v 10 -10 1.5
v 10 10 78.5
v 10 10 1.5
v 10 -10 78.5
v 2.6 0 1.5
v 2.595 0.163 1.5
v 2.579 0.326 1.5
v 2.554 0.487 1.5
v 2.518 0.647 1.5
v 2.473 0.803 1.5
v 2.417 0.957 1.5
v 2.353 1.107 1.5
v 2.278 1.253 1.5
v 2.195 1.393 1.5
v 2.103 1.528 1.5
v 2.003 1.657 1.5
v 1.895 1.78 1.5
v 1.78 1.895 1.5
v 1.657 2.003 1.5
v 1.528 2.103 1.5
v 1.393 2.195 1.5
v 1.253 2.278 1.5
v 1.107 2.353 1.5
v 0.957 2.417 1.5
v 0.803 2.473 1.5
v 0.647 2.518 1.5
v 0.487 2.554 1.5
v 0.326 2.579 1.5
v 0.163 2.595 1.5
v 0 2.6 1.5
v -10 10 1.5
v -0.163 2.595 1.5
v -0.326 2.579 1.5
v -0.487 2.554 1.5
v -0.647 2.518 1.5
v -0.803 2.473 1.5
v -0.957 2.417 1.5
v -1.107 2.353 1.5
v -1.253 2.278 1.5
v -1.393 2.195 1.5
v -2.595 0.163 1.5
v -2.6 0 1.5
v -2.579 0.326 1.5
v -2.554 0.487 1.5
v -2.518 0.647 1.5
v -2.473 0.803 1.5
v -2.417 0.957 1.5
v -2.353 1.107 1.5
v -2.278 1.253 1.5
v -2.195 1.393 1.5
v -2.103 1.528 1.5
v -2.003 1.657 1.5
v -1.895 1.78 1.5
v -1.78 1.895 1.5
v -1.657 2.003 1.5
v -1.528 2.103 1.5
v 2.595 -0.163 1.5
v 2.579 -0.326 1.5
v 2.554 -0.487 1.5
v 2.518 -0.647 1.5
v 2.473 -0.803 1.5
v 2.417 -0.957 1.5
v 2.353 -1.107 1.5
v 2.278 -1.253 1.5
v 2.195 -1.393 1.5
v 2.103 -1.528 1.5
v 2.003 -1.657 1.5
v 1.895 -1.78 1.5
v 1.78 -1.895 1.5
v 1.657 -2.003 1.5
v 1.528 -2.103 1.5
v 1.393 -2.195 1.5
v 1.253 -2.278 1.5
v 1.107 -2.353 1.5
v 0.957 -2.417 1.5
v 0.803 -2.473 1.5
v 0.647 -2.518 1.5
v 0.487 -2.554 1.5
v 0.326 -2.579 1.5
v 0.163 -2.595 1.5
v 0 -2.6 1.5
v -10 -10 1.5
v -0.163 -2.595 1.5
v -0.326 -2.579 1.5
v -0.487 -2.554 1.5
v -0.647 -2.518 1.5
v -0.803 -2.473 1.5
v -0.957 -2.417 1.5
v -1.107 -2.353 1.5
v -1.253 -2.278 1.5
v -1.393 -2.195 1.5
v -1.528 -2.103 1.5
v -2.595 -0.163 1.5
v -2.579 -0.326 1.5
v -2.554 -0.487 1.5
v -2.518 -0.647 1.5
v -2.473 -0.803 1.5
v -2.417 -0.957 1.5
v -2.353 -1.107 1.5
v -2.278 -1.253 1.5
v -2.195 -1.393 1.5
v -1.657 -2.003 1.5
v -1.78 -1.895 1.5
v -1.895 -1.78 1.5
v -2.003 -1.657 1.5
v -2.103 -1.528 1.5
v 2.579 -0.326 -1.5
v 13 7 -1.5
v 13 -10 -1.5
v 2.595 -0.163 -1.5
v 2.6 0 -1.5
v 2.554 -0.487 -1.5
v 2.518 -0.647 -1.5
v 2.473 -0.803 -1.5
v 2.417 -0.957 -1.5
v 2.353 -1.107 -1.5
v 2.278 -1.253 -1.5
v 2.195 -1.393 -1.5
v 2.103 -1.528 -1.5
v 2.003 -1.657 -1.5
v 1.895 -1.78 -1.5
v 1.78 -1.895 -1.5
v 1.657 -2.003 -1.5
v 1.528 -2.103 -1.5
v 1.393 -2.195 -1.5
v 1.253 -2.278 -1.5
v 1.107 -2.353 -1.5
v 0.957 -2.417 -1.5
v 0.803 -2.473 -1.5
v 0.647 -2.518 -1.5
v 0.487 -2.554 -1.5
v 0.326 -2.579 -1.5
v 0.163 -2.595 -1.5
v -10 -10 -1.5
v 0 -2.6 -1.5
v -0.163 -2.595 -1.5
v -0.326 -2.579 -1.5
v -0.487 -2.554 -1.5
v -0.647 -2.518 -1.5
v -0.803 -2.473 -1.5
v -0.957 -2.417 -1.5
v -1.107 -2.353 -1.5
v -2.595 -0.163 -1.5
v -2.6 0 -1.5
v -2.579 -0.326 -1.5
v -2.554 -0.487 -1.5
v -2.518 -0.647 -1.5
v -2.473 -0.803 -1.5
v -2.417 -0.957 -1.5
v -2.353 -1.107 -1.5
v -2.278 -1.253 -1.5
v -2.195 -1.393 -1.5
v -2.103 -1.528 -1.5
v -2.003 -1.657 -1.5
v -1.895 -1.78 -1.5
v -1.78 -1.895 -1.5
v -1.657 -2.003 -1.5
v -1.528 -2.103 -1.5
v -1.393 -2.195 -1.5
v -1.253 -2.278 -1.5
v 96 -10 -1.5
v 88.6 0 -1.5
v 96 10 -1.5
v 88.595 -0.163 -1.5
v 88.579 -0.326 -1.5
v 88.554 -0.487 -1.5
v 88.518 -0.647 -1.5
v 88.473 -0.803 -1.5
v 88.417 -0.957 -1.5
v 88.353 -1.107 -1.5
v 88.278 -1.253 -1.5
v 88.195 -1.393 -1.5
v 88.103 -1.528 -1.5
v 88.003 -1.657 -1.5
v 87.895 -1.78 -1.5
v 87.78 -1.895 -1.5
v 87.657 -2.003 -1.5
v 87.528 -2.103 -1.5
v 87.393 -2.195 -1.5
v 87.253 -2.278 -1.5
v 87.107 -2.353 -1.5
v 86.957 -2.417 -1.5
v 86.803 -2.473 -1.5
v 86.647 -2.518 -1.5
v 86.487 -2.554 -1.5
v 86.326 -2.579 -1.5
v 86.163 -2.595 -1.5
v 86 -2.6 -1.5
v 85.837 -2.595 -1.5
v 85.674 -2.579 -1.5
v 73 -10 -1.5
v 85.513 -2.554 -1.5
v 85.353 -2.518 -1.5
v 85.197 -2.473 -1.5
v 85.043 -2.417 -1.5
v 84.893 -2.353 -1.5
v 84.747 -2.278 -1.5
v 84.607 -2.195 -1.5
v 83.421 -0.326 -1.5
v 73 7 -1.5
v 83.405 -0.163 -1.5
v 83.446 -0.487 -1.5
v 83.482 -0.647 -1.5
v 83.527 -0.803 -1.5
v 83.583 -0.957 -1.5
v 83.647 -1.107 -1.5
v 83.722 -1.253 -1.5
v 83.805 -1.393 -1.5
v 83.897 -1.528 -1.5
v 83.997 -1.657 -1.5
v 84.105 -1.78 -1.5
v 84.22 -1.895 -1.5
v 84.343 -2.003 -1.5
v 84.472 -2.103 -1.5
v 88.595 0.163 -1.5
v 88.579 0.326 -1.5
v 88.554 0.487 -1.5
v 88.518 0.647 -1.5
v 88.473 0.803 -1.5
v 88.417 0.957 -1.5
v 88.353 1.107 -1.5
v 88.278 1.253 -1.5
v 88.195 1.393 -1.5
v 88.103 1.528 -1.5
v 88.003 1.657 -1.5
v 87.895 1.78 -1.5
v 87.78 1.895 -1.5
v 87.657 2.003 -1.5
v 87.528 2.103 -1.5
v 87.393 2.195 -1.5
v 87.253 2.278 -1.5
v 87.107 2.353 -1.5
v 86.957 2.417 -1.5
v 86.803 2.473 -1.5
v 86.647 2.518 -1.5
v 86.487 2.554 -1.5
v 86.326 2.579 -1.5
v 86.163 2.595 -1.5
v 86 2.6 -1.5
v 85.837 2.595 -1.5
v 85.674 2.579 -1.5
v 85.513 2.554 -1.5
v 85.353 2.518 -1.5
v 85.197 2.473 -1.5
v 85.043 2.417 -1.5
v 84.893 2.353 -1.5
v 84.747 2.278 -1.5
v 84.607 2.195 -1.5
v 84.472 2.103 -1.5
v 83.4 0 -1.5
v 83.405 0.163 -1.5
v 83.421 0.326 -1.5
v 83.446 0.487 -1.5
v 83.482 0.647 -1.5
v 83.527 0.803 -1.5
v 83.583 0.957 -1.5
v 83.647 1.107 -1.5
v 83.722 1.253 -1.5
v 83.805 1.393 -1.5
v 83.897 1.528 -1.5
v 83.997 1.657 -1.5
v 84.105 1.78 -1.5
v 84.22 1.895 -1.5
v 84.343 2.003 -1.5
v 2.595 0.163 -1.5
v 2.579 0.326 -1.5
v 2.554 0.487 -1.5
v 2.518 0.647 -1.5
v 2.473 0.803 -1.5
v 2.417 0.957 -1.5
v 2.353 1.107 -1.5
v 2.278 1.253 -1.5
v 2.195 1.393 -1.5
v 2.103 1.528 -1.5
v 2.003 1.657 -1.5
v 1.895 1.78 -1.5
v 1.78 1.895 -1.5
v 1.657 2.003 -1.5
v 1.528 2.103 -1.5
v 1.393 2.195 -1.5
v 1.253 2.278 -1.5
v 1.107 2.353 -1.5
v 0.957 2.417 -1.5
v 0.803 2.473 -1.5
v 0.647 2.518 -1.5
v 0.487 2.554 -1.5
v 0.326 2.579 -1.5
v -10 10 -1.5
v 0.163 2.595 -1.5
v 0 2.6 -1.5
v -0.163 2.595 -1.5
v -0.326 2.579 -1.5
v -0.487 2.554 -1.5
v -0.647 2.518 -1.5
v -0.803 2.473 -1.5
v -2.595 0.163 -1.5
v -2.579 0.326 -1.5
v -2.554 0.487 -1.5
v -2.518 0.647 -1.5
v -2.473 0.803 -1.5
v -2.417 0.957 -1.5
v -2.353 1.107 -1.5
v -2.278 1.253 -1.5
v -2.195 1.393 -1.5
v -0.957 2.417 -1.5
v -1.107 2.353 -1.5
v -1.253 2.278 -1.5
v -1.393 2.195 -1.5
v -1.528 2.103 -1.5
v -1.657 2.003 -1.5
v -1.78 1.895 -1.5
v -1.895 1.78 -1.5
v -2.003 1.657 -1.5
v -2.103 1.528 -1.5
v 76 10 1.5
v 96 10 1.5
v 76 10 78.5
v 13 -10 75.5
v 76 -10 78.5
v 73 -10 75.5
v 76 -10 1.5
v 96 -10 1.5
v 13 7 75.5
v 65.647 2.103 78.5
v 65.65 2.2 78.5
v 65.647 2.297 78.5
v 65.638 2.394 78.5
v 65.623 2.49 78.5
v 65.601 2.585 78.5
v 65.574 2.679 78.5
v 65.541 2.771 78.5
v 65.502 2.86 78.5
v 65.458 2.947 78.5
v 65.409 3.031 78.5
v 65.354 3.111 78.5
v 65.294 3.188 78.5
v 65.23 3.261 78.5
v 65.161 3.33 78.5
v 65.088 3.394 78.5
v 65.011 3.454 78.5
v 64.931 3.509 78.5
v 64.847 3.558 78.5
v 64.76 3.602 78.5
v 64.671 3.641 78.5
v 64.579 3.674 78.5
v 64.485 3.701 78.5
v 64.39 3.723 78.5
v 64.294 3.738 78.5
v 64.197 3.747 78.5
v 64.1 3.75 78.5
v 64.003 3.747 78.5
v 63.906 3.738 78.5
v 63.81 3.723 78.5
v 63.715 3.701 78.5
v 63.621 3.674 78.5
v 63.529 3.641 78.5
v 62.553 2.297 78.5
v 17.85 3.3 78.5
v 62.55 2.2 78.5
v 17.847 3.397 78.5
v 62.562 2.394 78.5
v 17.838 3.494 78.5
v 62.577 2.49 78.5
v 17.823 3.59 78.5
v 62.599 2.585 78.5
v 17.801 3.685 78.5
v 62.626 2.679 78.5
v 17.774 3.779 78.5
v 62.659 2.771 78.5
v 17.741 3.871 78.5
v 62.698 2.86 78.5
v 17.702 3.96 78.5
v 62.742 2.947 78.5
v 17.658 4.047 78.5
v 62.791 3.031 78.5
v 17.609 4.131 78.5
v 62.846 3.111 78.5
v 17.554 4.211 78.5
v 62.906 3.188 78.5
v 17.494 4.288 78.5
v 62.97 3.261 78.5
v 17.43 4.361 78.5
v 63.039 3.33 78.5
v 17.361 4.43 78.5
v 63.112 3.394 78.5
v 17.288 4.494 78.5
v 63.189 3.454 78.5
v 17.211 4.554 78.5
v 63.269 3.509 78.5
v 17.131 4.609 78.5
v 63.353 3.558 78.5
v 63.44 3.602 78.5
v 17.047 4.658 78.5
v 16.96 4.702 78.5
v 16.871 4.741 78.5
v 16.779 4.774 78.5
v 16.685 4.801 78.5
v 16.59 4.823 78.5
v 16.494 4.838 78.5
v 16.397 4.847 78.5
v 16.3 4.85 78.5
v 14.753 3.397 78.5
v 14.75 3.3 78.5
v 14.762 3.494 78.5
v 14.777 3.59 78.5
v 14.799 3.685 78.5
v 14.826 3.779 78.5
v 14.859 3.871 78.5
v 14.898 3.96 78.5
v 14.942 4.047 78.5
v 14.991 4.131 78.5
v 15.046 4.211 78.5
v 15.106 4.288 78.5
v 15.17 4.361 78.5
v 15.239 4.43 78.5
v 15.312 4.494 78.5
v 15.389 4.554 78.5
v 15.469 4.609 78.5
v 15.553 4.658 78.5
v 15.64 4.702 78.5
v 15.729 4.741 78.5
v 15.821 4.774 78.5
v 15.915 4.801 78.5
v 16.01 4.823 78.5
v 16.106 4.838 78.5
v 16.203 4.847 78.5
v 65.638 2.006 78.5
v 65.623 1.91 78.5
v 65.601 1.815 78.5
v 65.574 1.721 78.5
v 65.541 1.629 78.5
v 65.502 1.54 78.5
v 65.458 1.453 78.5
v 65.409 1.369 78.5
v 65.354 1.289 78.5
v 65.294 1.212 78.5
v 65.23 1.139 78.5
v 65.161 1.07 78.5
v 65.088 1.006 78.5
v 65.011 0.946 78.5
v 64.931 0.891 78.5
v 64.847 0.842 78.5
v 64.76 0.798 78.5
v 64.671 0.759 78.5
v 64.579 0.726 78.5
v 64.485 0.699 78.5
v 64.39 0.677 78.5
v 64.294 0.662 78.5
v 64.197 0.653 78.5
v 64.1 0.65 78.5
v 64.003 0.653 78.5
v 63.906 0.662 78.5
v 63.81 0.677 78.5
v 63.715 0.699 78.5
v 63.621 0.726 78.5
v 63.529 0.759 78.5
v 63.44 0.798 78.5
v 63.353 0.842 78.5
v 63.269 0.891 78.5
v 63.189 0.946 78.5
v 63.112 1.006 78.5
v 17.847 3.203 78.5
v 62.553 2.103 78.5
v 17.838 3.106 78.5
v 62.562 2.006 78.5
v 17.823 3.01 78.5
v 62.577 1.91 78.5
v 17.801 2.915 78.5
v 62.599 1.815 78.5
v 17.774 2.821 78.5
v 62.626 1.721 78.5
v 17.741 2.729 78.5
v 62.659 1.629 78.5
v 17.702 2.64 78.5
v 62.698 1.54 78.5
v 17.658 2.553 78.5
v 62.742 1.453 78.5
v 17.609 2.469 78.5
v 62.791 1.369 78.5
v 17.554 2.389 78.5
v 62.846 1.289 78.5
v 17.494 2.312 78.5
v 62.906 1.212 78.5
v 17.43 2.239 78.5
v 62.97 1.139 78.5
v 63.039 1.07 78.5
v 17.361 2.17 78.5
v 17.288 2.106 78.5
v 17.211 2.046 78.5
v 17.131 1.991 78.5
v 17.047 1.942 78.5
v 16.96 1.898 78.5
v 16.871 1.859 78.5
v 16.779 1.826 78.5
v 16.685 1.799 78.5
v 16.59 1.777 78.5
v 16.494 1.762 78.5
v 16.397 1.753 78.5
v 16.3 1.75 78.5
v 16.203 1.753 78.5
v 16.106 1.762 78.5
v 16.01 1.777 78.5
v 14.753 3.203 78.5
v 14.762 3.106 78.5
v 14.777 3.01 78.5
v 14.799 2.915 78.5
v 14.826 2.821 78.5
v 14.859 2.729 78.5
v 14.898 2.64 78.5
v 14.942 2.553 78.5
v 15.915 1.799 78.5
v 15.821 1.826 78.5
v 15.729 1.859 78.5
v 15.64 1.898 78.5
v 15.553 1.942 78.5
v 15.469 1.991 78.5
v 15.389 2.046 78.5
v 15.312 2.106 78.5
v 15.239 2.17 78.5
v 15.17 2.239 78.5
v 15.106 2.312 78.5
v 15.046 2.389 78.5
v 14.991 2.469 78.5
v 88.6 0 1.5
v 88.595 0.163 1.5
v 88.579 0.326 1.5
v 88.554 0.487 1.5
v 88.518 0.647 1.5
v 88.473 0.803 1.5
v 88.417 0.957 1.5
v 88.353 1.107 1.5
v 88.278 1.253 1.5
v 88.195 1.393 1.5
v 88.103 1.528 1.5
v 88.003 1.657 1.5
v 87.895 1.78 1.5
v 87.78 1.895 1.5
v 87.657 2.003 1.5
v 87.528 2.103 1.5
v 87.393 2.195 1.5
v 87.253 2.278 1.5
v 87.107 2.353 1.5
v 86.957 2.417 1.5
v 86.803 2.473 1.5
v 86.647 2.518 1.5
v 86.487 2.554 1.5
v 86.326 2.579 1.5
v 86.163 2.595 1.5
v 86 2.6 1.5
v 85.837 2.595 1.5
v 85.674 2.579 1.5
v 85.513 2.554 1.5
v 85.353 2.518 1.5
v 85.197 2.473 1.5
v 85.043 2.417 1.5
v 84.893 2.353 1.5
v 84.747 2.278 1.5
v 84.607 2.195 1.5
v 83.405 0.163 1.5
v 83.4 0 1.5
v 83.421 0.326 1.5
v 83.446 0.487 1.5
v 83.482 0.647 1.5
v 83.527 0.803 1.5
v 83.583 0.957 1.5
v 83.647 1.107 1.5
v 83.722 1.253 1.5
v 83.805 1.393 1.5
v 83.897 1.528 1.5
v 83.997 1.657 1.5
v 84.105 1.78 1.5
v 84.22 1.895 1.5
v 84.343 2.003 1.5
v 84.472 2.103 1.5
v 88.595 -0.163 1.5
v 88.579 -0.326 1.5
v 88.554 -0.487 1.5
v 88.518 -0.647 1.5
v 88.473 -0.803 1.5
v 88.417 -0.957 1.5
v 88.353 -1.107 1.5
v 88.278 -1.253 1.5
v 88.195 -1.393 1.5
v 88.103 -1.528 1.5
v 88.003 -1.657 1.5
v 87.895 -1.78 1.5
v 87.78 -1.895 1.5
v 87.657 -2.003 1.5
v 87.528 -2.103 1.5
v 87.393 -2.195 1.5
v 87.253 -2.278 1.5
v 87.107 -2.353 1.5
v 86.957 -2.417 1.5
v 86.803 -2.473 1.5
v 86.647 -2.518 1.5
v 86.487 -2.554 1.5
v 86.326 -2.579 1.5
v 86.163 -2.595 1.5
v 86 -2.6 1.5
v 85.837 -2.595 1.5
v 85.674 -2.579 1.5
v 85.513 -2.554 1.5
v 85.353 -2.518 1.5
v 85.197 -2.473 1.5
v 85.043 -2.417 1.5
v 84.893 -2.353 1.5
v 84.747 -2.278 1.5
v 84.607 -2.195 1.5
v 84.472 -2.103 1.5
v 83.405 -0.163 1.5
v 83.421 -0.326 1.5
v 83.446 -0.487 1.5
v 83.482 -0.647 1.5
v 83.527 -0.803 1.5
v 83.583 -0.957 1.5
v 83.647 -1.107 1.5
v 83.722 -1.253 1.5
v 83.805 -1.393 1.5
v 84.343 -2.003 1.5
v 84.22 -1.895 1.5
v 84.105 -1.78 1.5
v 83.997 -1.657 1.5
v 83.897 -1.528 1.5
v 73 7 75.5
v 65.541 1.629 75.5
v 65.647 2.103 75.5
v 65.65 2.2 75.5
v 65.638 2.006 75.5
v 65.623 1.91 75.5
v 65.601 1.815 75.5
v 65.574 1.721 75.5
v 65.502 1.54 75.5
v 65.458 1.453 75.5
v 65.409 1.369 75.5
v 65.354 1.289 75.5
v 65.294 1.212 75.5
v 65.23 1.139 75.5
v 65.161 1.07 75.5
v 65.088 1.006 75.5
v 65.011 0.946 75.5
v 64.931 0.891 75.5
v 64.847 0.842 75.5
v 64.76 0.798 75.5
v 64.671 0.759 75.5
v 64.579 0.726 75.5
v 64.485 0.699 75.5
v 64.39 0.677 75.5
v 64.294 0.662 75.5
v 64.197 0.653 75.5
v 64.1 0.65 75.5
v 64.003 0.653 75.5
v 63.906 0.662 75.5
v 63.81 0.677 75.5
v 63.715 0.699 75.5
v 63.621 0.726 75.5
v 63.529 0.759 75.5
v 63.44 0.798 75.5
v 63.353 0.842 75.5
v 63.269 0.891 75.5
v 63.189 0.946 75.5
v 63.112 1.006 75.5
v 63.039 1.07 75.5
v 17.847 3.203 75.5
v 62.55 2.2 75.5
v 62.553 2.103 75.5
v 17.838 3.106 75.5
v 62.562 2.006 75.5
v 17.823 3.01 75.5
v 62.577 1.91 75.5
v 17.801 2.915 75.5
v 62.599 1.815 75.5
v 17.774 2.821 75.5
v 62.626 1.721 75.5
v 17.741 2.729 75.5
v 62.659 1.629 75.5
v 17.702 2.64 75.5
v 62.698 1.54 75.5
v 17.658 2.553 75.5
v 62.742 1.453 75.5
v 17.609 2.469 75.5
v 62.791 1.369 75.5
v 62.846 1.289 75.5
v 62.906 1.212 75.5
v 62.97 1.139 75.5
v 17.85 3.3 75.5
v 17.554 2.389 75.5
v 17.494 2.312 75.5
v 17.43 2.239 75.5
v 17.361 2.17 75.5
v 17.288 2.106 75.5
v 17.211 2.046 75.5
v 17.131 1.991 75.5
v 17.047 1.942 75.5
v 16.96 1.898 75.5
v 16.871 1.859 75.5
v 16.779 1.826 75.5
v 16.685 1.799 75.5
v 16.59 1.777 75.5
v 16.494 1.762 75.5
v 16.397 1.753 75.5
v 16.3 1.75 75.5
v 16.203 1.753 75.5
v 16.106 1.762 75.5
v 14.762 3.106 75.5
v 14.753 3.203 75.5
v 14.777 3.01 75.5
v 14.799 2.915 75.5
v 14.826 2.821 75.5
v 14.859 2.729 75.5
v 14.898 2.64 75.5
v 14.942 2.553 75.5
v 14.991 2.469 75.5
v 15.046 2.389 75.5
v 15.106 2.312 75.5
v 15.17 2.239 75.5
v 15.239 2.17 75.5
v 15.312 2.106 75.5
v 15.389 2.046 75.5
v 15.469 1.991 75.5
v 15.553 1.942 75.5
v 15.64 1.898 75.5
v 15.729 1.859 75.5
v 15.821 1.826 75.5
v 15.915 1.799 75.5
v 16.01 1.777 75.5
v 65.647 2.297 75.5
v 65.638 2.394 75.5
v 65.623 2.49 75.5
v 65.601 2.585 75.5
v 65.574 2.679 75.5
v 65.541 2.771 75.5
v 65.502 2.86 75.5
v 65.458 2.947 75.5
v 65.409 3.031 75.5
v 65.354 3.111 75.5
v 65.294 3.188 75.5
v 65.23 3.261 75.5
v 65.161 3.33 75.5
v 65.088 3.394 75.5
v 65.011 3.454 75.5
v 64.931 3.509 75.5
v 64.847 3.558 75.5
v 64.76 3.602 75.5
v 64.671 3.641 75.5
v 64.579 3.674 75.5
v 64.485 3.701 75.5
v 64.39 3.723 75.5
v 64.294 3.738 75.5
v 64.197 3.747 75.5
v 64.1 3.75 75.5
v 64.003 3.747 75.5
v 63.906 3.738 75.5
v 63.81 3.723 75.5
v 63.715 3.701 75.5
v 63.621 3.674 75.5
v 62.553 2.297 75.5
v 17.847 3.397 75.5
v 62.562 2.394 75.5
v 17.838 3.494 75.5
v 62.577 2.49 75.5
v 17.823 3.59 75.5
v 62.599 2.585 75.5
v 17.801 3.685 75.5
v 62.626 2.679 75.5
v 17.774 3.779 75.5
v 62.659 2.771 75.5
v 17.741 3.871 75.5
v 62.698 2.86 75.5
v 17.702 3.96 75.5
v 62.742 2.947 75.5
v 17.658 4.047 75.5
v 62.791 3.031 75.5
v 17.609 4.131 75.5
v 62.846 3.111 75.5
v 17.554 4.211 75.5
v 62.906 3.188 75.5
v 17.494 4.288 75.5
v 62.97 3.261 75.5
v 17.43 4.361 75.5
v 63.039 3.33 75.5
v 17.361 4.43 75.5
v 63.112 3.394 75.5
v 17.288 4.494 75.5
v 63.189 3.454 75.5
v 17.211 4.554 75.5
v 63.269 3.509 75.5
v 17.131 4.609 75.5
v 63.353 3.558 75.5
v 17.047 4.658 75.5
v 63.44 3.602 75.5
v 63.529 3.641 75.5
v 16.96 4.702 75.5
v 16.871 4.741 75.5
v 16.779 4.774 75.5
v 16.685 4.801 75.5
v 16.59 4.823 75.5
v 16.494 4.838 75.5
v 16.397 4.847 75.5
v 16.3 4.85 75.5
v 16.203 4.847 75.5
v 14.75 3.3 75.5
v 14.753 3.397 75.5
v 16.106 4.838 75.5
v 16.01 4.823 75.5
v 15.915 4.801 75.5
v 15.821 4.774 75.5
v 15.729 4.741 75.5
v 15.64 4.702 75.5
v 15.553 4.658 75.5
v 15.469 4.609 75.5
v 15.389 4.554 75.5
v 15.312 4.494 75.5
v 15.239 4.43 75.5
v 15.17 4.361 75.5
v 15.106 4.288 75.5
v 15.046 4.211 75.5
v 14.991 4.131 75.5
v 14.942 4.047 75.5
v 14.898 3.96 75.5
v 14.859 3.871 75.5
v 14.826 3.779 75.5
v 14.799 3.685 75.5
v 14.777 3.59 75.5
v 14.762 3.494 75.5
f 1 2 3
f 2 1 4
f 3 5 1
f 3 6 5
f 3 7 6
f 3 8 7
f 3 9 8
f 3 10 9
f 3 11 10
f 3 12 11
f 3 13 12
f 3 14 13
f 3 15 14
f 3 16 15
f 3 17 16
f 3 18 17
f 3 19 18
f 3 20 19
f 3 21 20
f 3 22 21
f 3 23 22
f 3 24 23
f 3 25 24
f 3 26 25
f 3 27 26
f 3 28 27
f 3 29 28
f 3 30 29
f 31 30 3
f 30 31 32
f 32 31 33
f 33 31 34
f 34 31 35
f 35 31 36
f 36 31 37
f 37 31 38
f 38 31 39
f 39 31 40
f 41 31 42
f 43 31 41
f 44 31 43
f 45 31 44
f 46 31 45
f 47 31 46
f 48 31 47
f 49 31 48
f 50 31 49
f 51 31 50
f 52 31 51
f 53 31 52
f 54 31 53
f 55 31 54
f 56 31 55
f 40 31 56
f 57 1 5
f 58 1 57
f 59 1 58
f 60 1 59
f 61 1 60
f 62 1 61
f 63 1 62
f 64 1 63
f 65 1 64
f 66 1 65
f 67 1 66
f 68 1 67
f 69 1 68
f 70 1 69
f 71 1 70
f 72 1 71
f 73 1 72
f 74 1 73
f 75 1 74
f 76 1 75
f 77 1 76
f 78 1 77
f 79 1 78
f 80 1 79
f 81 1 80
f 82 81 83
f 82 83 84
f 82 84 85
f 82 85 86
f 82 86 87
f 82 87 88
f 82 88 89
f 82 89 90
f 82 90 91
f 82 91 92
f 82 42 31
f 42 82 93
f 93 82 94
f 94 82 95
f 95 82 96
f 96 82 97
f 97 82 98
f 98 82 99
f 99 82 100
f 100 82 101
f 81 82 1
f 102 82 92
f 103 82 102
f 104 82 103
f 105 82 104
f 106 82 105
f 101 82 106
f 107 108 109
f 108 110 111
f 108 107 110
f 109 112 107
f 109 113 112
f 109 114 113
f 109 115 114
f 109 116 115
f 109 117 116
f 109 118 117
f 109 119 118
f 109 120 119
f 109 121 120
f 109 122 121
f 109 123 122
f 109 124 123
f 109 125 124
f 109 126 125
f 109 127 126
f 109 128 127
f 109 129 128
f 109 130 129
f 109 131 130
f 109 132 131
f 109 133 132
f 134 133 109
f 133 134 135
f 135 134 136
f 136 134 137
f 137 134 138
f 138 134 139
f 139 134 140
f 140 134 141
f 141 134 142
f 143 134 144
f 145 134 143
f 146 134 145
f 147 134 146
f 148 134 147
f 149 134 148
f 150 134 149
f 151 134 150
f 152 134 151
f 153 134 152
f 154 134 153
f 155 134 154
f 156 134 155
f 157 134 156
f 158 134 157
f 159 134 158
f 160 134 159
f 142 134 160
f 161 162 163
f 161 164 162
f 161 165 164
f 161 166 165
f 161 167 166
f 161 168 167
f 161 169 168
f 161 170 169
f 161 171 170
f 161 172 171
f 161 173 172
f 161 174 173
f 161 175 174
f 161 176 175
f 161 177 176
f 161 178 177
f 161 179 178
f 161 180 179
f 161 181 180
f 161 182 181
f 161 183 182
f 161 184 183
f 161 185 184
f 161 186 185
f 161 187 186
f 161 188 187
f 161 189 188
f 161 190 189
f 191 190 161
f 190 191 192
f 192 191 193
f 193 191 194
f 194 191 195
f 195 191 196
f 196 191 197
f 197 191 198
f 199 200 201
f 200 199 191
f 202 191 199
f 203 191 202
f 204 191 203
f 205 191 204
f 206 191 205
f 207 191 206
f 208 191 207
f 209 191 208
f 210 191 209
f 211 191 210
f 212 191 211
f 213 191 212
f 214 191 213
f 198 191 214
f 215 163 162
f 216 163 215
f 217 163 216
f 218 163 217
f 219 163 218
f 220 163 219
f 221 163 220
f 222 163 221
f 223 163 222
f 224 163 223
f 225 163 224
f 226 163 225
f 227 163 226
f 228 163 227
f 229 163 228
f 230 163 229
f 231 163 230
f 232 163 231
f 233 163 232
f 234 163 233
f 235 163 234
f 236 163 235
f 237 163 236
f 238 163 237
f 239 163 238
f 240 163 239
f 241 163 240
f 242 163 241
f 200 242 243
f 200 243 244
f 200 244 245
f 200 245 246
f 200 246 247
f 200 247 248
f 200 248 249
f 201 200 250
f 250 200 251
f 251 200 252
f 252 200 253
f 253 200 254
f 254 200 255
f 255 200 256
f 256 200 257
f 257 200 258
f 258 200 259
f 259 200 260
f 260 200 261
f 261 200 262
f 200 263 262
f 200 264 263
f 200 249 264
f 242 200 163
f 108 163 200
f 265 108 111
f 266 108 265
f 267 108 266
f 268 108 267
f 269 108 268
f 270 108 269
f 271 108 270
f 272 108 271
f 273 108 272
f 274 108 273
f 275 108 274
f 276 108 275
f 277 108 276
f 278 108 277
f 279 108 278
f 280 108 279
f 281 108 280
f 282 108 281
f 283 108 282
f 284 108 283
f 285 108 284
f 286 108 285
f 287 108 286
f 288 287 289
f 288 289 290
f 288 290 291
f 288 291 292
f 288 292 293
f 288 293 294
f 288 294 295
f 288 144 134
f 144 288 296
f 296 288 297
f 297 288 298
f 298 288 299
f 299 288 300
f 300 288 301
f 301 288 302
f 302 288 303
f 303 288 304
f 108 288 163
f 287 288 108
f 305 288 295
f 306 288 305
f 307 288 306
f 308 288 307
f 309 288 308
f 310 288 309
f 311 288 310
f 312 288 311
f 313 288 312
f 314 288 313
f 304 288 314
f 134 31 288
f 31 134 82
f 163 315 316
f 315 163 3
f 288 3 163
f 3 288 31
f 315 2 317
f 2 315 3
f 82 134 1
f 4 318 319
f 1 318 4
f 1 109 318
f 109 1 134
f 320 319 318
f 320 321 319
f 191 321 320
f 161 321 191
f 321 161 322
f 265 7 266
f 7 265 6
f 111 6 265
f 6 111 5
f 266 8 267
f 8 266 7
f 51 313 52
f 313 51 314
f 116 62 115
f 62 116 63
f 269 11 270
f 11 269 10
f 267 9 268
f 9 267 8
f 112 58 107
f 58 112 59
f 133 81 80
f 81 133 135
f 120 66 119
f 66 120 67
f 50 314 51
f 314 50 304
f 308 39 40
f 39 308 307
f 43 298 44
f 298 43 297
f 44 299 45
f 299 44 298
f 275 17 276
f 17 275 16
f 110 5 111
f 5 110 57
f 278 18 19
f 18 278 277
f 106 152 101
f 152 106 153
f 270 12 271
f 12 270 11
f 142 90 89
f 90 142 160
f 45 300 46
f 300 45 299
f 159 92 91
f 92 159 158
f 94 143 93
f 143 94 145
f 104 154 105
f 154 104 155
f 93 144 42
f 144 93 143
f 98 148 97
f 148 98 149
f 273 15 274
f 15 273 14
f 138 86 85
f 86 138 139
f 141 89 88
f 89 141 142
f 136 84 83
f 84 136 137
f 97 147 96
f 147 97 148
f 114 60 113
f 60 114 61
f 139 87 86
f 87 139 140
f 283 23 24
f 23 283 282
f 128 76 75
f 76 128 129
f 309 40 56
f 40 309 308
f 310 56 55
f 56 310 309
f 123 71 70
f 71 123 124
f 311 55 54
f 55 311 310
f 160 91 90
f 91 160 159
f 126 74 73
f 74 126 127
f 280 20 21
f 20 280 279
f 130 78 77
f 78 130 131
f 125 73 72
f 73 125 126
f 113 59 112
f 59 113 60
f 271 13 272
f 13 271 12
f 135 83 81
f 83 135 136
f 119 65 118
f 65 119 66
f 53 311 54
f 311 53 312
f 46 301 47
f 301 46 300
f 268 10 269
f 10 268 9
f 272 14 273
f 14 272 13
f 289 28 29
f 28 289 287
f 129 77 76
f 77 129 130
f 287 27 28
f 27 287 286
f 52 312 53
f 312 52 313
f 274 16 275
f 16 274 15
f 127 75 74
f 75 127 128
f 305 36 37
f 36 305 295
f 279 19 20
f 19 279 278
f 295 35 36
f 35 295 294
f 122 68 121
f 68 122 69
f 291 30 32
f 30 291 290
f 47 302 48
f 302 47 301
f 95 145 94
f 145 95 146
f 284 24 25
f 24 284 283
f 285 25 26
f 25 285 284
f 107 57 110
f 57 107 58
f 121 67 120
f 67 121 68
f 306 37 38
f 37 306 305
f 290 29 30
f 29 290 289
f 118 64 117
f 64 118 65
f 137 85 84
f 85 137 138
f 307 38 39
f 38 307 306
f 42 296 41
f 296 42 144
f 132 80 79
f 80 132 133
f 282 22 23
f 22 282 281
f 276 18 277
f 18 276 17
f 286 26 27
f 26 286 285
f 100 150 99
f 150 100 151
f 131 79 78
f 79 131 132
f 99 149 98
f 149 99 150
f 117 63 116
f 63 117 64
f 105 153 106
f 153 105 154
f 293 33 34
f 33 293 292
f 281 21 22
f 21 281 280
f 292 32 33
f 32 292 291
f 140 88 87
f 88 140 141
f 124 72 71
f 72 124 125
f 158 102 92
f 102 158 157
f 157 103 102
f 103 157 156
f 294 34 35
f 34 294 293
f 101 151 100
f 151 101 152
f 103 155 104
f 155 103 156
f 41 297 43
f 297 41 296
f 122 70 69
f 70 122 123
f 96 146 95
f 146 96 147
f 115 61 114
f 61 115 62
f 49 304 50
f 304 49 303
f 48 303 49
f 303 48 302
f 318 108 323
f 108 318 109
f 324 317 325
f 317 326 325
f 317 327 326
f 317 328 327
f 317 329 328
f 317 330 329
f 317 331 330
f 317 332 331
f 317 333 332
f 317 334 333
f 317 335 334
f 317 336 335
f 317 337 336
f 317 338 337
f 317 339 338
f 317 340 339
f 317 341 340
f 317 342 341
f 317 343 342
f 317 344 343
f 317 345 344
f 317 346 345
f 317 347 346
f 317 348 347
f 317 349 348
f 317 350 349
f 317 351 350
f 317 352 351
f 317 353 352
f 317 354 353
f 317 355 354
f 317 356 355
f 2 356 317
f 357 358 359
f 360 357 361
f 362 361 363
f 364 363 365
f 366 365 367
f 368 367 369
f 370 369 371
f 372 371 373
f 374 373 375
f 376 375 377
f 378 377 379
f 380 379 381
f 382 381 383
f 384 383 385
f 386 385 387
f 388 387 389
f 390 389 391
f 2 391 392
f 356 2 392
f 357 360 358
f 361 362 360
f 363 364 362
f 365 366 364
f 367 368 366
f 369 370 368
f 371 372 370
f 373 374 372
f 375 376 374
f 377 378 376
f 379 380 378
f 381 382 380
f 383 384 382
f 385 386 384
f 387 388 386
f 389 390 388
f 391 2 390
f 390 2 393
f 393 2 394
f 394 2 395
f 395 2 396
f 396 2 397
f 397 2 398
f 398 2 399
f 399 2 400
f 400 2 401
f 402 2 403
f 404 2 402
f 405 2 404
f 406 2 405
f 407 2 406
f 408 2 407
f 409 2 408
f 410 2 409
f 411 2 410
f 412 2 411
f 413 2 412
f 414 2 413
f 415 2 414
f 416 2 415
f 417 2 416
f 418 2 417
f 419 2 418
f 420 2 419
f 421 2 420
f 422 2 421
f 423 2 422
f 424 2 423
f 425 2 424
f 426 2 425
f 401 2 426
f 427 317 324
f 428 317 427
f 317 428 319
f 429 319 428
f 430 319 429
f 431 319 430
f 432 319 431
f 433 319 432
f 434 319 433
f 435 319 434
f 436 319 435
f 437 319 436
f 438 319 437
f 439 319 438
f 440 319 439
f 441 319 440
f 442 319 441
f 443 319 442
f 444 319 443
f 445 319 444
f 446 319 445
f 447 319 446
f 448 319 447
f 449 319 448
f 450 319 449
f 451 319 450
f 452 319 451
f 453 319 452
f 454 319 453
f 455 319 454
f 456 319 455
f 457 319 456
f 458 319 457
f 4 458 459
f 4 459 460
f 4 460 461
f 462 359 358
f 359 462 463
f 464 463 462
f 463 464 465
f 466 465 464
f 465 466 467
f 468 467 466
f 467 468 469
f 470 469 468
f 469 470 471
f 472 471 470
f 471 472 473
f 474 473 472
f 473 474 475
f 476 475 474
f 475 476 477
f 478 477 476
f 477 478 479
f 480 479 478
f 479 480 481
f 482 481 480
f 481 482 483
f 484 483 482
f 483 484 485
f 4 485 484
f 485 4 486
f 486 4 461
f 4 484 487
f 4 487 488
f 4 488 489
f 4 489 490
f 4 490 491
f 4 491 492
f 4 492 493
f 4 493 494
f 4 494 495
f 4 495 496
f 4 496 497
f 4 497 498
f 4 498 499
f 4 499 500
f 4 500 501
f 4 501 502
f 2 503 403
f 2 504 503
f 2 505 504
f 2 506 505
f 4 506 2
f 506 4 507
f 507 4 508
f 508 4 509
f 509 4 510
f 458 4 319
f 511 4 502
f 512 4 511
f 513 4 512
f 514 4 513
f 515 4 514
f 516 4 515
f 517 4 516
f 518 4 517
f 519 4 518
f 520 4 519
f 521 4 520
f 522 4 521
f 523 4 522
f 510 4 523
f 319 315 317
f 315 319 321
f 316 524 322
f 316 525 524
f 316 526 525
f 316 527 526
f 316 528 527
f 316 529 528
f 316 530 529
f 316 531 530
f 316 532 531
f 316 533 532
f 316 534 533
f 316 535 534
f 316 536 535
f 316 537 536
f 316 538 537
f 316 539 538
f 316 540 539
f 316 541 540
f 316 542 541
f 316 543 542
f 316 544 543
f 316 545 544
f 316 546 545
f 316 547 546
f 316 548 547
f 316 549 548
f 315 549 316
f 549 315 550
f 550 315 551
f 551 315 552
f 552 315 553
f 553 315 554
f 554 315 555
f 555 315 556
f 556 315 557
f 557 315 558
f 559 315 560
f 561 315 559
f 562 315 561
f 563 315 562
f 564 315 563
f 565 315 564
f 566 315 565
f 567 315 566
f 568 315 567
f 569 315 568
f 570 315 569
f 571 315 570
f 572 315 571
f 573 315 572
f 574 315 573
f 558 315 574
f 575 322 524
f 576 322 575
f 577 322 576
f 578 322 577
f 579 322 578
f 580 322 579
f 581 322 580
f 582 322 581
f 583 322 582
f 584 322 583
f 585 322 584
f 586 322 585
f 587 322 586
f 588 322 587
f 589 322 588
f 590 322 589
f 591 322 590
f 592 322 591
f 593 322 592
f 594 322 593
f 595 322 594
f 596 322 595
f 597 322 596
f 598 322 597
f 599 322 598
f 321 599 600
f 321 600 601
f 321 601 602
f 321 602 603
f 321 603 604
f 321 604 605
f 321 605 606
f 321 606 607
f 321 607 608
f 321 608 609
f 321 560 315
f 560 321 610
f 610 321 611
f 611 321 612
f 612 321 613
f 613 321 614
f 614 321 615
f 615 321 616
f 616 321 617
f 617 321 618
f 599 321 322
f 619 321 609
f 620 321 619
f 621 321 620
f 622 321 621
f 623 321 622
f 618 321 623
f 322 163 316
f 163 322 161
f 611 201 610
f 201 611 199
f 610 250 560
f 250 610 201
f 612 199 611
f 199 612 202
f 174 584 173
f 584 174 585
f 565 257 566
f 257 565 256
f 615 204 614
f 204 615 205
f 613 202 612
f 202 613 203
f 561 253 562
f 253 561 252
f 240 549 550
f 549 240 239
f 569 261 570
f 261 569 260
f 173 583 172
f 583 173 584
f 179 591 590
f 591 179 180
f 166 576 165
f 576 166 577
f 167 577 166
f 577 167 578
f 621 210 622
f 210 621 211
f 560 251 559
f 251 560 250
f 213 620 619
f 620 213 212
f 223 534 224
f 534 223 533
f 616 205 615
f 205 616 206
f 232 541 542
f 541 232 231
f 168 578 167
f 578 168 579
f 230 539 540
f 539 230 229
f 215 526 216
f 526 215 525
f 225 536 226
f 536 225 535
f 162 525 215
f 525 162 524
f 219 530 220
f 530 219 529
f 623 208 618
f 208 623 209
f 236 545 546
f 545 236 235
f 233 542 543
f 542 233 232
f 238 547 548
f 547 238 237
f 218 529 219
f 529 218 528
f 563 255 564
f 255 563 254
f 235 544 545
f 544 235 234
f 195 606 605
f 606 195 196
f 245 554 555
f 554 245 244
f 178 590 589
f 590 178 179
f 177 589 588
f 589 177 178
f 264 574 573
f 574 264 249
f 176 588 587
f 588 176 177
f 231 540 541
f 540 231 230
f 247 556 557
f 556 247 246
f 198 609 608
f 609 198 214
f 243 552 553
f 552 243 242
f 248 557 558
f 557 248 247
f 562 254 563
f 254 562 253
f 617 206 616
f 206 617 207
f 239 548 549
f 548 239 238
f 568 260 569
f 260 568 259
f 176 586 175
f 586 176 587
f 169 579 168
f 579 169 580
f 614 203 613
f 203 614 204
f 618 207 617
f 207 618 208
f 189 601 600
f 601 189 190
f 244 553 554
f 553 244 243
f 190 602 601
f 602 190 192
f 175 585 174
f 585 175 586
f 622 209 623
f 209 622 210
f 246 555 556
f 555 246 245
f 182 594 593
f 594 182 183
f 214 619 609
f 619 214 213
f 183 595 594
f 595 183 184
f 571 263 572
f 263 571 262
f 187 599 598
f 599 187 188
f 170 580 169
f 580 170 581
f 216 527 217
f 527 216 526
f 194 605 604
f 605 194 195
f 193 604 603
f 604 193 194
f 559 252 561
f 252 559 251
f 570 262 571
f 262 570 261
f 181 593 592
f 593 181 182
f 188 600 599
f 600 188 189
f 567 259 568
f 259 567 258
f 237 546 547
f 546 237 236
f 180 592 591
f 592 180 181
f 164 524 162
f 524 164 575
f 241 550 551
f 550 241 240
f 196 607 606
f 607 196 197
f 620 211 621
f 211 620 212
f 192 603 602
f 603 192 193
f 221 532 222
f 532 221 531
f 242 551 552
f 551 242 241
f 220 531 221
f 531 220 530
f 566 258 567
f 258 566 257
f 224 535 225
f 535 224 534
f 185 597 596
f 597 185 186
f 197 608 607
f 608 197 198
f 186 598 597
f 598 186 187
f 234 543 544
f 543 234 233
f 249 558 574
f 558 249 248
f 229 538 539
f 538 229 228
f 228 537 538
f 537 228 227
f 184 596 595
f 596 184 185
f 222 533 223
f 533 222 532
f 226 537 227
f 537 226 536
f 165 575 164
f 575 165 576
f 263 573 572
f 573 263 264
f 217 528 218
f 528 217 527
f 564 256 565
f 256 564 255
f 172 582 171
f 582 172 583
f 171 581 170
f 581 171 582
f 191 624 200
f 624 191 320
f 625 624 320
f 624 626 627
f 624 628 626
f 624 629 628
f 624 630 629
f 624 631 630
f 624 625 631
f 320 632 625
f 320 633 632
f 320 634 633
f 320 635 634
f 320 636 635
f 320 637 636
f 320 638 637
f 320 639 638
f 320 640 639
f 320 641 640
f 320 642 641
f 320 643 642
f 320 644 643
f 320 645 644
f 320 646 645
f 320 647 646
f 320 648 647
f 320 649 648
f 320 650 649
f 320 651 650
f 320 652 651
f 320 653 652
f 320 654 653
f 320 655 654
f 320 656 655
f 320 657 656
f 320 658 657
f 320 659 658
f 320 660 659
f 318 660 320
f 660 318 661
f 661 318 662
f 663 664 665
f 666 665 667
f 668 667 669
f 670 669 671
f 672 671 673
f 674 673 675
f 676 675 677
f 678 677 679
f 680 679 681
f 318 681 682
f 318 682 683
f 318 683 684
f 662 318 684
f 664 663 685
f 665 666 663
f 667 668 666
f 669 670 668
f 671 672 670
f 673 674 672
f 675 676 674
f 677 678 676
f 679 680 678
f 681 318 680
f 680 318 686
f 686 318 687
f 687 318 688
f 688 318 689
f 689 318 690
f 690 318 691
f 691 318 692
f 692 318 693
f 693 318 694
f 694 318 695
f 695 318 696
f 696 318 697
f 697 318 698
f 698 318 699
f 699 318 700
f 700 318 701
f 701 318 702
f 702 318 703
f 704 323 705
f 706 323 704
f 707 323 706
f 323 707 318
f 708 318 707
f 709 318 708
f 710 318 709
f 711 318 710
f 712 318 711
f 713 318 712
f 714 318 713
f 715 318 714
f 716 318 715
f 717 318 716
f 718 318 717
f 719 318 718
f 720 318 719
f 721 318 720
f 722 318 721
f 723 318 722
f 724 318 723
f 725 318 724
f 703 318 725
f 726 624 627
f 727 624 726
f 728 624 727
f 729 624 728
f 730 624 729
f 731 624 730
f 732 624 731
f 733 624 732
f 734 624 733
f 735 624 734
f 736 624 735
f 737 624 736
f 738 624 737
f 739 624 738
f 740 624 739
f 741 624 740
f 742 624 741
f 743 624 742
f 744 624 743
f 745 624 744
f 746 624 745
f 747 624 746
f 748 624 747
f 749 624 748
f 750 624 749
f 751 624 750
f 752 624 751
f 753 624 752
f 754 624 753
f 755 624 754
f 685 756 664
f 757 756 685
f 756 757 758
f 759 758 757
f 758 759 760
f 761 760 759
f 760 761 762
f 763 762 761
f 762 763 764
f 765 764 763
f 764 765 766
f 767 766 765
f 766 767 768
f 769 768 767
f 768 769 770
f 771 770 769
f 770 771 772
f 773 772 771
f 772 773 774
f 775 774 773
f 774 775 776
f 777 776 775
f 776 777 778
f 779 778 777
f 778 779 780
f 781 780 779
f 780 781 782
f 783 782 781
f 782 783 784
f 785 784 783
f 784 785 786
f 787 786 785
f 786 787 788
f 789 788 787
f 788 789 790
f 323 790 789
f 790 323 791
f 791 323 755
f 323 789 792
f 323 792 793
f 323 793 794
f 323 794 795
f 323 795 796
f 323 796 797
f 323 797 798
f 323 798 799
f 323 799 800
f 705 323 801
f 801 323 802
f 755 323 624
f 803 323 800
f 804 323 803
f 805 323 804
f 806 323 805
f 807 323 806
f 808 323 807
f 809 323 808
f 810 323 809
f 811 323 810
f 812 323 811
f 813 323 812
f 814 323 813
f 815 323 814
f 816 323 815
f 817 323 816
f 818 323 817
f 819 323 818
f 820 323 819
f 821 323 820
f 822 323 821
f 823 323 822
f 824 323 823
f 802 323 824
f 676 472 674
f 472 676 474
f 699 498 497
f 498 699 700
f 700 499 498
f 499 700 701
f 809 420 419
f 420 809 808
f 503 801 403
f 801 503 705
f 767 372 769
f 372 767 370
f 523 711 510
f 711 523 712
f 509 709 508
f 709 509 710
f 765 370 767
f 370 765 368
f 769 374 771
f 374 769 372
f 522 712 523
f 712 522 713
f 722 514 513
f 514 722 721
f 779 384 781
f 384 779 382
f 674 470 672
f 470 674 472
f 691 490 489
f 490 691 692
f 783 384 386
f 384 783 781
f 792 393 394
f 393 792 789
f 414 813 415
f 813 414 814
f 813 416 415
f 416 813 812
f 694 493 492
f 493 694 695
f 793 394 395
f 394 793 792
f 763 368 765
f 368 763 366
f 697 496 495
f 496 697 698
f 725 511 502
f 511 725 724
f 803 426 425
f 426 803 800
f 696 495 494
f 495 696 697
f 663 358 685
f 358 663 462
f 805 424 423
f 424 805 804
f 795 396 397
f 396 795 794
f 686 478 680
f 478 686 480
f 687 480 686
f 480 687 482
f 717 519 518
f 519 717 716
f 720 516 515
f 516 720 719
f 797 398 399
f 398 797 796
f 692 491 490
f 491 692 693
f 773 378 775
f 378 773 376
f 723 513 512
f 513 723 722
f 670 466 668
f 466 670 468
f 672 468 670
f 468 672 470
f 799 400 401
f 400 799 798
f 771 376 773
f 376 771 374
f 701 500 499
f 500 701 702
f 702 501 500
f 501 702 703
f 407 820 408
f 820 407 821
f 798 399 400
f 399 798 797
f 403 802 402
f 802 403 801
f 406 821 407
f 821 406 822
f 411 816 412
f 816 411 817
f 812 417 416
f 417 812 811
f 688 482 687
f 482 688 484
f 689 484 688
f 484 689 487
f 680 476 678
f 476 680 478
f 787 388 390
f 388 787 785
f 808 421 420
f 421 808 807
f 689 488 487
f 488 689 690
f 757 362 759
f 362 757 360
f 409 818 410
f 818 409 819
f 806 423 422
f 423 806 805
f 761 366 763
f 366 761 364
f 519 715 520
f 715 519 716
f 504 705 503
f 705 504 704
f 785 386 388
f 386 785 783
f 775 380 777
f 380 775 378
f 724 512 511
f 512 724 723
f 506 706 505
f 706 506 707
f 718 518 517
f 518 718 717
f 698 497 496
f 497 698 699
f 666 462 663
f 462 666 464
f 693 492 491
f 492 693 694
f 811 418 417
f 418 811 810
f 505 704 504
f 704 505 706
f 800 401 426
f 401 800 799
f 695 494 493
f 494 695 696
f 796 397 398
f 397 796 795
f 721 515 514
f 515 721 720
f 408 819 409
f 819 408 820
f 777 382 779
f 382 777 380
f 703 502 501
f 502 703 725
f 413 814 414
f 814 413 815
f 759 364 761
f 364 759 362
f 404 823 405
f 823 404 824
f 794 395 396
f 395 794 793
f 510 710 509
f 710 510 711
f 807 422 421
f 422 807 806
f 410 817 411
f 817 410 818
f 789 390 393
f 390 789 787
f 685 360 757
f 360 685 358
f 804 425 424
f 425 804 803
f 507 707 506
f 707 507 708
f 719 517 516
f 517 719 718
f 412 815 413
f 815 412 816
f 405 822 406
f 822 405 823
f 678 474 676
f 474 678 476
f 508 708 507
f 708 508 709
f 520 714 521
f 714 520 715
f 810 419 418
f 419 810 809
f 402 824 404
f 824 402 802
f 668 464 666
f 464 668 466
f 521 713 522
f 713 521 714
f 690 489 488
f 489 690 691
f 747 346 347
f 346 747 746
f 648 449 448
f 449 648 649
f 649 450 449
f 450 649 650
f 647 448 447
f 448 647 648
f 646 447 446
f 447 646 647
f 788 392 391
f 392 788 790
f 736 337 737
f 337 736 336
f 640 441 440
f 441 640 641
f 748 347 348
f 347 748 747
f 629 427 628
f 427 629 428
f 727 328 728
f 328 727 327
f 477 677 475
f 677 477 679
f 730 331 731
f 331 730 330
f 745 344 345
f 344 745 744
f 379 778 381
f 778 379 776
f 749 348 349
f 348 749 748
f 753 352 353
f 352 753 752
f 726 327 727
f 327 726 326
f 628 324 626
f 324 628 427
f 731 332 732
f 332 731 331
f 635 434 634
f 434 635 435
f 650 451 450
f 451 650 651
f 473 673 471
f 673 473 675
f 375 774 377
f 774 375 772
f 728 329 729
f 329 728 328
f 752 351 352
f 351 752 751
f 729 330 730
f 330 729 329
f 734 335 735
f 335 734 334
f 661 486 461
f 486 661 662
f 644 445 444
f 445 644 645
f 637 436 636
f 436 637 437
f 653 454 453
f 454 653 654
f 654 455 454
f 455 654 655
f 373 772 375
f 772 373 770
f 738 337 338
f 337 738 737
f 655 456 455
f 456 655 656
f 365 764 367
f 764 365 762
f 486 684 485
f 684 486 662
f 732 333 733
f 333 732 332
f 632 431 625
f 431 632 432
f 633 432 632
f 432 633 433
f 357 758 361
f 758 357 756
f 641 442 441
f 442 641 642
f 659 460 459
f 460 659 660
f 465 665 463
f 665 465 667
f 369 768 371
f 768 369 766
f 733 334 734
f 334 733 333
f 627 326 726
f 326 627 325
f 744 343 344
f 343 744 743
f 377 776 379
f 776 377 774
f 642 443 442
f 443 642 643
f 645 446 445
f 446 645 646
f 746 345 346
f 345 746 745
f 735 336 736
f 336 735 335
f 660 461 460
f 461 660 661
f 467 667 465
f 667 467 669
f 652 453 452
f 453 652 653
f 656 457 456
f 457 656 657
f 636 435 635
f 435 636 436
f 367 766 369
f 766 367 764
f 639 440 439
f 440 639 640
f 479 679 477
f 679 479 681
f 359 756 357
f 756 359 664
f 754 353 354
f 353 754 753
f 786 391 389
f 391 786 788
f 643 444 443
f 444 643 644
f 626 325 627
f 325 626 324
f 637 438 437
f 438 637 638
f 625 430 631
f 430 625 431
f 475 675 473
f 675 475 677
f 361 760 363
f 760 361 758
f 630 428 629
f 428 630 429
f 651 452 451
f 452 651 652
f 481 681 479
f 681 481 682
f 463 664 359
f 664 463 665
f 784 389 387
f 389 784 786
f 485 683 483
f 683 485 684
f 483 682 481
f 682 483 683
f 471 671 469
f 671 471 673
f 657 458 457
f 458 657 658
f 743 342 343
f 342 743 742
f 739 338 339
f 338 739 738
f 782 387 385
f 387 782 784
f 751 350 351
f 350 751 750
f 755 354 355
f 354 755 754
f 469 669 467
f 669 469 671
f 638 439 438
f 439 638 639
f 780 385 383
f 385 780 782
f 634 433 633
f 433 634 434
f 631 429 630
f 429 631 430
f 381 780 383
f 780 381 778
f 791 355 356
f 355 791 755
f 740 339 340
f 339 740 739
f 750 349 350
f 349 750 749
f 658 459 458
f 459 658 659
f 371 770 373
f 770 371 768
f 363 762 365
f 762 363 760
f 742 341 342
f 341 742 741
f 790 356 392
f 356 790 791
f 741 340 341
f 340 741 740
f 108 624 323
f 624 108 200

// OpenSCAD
$fn = 100;

bolt_d = 3.1;
w=20;
l=80;
h=3;

d=60;

x1=74.8 - 51.9-6.2;
y1=3.3;
x2=x1+51.9;
y2=y1+4.7;

x3=x2;
y3=y2+27.9;

x4=x1+1.1;
y4=y3+15.2;

module plate(){
difference(){
    cube([w,w,h],center=true);
     translate([0,0,-h])
    cylinder(3*h,d=5.2);
    }
    translate([(w)/2+h/2,0,l/2-h/2])
    cube([h,w,l],center=true);
}

module bridge(){
    difference(){
        rotate([0,0,90])
        translate([0,-w-10,0])
        cube([d,w,h]);
        
        translate([x1,y1,-h])
        cylinder(3*h, d=3.1);
        
        translate([x4,y4,-h])
        cylinder(3*h, d=3.1);
    }
}
    
module backplate(){
    translate([w/2,w/2-h,-h/2])
    cube([d+2*h,h,l]);
} 
    
plate();
rotate([0,0,180])
translate([-d-w-2*h,0,0])
plate();

translate([w/2+h,w,l-1.5*h])
rotate([0,0,-90])
bridge();
    
 backplate();
